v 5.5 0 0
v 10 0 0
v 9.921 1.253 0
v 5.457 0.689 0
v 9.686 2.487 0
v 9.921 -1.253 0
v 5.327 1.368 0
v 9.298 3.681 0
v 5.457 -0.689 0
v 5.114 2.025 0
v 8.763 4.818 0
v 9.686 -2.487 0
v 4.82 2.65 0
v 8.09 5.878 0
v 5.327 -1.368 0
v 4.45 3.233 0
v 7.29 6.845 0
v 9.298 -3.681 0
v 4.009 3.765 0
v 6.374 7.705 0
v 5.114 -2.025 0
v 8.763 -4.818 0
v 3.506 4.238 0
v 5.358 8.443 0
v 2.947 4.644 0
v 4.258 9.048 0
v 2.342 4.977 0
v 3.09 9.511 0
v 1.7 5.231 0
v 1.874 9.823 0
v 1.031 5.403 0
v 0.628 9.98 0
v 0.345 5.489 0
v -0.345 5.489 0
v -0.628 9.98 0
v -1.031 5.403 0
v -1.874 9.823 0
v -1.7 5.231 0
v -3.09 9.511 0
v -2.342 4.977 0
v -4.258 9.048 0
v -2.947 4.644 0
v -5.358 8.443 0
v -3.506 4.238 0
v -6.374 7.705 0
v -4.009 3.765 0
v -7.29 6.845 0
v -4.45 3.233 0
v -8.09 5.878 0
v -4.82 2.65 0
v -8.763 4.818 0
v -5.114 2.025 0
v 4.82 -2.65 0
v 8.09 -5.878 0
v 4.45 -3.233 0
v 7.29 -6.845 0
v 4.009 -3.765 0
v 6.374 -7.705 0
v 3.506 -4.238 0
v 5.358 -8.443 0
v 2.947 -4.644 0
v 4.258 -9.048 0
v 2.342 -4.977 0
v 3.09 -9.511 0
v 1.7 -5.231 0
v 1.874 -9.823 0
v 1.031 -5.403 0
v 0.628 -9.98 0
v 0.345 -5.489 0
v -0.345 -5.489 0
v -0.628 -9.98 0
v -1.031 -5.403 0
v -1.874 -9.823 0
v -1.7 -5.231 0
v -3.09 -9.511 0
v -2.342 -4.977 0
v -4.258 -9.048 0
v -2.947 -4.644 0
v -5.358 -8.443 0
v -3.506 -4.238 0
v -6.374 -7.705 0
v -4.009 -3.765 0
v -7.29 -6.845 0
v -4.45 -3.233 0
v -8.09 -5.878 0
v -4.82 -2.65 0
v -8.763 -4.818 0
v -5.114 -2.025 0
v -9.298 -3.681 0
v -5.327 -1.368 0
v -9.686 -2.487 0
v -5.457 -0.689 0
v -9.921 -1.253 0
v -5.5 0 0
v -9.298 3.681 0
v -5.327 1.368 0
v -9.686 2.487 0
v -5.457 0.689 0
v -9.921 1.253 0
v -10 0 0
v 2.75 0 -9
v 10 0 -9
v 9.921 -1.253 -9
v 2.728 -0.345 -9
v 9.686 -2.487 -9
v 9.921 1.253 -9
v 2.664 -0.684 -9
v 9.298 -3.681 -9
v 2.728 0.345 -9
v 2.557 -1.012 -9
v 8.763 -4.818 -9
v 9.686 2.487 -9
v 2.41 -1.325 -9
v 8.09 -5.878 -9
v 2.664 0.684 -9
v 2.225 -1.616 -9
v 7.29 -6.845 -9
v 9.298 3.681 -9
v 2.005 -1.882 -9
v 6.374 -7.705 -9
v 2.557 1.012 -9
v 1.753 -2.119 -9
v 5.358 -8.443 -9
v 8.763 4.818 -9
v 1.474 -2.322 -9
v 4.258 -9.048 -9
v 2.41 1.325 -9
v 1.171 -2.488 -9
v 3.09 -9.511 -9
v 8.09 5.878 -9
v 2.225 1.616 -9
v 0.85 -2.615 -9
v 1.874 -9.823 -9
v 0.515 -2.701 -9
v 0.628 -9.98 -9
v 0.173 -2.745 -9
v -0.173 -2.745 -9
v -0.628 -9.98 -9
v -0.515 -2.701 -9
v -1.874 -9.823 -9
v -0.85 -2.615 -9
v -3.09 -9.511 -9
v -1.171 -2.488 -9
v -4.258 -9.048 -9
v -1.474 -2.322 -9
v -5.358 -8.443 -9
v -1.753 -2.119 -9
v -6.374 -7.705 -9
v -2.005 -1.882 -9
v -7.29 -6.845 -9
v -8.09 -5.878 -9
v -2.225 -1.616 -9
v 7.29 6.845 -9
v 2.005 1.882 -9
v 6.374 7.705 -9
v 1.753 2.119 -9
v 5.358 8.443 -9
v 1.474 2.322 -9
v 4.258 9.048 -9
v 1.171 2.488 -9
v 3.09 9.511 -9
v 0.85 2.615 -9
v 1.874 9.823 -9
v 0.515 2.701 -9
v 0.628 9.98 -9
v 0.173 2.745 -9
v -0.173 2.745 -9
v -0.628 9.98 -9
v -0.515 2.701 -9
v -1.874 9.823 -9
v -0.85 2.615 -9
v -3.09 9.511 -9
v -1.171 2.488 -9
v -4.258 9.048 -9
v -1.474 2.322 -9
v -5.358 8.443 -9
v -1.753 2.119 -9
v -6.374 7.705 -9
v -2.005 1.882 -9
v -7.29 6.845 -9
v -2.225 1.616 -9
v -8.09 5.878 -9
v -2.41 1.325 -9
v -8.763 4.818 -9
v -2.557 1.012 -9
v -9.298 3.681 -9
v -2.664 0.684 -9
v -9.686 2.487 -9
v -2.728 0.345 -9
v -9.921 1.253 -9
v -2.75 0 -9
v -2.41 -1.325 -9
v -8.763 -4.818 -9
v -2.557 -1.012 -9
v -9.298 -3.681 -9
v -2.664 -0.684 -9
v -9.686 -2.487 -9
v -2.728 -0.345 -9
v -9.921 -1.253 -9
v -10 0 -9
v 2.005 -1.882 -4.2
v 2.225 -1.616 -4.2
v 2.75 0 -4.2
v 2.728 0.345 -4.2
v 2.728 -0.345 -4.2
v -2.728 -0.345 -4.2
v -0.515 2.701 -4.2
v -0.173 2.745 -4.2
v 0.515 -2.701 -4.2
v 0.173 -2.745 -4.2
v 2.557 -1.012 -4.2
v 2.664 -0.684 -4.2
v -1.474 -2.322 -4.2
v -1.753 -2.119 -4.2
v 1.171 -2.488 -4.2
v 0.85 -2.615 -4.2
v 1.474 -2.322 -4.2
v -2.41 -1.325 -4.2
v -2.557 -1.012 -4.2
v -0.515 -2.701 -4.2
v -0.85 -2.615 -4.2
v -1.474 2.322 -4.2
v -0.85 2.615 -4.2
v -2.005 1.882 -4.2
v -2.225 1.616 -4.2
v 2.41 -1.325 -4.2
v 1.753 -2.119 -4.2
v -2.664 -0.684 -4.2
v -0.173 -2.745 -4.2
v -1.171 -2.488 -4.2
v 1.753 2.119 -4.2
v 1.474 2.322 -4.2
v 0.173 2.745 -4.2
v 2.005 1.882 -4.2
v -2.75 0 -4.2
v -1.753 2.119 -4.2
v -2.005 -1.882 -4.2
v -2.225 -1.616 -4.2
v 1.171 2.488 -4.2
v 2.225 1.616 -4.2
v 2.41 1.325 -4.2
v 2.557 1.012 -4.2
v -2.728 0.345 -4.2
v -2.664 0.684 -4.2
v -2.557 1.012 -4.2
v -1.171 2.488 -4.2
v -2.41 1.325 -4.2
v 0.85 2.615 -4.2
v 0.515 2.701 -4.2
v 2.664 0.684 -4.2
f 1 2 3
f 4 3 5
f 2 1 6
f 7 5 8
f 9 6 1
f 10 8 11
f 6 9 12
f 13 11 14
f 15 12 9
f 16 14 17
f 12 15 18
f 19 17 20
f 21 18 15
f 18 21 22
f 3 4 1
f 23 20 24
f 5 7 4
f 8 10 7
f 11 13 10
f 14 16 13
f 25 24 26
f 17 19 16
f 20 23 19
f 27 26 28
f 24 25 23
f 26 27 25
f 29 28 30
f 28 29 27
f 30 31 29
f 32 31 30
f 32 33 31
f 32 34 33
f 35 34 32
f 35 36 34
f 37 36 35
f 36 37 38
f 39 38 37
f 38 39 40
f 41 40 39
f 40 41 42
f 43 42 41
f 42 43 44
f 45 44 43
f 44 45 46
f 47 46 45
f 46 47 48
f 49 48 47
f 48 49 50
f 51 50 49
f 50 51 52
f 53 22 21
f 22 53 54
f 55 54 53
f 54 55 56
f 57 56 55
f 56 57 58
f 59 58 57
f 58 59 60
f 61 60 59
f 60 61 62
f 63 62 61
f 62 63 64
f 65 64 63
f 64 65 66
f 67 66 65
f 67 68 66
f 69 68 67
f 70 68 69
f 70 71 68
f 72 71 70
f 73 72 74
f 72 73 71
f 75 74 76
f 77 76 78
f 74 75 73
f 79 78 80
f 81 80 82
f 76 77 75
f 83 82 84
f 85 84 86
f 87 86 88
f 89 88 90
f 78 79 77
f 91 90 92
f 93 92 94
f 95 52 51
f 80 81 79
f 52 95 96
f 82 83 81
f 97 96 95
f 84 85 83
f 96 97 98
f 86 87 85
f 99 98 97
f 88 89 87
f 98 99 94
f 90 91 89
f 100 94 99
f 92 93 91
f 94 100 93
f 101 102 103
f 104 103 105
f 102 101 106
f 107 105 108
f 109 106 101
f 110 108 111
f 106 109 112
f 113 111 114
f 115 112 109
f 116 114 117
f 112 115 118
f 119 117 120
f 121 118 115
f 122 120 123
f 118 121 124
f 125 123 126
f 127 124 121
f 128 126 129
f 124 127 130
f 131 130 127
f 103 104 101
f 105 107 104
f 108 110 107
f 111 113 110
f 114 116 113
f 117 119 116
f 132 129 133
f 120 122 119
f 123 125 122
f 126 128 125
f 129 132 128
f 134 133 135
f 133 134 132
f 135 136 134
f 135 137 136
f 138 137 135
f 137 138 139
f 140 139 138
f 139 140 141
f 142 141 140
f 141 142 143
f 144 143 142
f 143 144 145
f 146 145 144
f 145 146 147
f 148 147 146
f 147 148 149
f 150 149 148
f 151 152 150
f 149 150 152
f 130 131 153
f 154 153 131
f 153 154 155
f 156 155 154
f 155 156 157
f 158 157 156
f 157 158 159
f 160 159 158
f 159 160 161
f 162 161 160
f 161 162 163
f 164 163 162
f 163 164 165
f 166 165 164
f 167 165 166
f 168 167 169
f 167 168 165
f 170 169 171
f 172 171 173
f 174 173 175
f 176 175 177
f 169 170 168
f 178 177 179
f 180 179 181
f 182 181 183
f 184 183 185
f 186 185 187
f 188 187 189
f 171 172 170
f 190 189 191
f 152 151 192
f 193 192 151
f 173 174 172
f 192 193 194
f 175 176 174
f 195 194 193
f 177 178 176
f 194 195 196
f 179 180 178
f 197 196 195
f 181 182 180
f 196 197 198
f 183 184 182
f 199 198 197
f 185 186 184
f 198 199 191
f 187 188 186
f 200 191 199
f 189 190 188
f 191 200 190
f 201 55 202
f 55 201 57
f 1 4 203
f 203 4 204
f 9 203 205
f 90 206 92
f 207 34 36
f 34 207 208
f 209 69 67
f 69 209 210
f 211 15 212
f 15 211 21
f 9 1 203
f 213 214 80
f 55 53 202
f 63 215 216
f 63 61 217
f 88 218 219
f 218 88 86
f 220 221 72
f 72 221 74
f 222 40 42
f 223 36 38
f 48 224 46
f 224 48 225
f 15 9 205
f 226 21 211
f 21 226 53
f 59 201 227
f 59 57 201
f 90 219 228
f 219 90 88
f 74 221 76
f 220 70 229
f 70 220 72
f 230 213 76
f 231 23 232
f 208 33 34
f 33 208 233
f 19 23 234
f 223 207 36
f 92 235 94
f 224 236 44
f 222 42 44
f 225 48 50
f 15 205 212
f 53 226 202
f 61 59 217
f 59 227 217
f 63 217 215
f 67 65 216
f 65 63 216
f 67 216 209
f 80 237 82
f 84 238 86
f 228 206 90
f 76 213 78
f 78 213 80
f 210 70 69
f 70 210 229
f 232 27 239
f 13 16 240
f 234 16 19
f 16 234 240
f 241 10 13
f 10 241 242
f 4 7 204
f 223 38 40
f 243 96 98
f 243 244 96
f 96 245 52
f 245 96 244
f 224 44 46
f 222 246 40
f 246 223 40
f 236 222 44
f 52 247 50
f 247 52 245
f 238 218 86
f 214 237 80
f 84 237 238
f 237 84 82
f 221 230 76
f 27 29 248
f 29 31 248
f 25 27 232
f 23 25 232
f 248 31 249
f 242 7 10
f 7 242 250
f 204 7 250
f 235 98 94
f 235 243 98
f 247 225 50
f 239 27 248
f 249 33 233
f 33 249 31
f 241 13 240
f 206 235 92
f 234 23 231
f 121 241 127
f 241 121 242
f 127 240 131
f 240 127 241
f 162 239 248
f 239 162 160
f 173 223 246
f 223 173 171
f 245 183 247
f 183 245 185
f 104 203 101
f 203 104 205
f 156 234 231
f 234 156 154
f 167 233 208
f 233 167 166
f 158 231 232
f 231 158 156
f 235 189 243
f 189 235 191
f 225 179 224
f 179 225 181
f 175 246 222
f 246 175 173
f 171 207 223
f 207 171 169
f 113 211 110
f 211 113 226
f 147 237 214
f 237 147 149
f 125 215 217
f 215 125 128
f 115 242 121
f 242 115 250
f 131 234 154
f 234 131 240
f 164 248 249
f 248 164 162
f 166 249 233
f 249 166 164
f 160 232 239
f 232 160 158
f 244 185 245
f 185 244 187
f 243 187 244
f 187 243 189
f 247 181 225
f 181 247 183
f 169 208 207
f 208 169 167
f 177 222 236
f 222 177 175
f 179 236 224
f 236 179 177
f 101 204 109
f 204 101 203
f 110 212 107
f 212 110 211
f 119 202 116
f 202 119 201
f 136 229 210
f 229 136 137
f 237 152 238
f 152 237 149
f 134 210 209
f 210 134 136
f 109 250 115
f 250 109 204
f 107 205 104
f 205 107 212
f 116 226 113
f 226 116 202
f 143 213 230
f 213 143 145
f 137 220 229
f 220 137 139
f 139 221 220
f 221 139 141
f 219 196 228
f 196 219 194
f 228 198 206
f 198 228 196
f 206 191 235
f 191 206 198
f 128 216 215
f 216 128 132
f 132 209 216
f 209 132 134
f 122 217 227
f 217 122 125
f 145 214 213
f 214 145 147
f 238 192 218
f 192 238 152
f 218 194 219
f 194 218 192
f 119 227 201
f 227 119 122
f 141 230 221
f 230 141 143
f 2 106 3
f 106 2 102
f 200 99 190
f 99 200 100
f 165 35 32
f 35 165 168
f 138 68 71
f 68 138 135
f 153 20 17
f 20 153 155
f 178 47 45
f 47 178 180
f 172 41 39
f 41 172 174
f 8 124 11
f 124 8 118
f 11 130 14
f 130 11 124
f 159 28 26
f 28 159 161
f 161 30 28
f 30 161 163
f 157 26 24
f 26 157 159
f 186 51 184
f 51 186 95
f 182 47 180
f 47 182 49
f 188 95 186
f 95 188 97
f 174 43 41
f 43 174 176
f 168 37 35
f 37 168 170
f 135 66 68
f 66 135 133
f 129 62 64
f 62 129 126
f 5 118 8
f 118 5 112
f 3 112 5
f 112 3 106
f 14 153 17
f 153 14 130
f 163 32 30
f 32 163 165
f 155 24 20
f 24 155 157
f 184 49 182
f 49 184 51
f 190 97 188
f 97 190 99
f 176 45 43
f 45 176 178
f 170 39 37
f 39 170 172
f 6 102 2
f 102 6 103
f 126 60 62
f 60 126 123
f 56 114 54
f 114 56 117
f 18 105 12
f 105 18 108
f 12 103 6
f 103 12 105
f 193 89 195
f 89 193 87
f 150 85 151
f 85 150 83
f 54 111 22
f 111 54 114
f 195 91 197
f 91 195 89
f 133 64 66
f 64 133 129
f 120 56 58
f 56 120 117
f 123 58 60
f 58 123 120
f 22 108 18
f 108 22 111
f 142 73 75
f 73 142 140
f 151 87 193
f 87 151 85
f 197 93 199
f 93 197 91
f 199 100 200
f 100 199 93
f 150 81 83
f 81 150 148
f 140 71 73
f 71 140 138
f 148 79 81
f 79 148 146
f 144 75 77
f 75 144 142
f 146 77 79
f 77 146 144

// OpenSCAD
$fn = 50;


difference() {
	union() {
		translate(v = [0, 0, -9.0000000000]) {
			cylinder(h = 9, r = 10.0000000000);
		}
		cylinder(h = 0, r = 20.0000000000);
	}
	union() {
		translate(v = [0, 0, 0]) {
			rotate(a = [0, 0, 0]) {
				difference() {
					union() {
						#translate(v = [0, 0, -9.0000000000]) {
							cylinder(h = 9, r = 2.2500000000);
						}
						#translate(v = [0, 0, -4.2000000000]) {
							cylinder(h = 4.2000000000, r = 10.0000000000, r1 = 2.7500000000, r2 = 5.5000000000);
						}
						#translate(v = [0, 0, -9.0000000000]) {
							cylinder(h = 9, r = 2.7500000000);
						}
						#translate(v = [0, 0, -9.0000000000]) {
							cylinder(h = 9, r = 2.2500000000);
						}
					}
					union();
				}
			}
		}
	}
}
